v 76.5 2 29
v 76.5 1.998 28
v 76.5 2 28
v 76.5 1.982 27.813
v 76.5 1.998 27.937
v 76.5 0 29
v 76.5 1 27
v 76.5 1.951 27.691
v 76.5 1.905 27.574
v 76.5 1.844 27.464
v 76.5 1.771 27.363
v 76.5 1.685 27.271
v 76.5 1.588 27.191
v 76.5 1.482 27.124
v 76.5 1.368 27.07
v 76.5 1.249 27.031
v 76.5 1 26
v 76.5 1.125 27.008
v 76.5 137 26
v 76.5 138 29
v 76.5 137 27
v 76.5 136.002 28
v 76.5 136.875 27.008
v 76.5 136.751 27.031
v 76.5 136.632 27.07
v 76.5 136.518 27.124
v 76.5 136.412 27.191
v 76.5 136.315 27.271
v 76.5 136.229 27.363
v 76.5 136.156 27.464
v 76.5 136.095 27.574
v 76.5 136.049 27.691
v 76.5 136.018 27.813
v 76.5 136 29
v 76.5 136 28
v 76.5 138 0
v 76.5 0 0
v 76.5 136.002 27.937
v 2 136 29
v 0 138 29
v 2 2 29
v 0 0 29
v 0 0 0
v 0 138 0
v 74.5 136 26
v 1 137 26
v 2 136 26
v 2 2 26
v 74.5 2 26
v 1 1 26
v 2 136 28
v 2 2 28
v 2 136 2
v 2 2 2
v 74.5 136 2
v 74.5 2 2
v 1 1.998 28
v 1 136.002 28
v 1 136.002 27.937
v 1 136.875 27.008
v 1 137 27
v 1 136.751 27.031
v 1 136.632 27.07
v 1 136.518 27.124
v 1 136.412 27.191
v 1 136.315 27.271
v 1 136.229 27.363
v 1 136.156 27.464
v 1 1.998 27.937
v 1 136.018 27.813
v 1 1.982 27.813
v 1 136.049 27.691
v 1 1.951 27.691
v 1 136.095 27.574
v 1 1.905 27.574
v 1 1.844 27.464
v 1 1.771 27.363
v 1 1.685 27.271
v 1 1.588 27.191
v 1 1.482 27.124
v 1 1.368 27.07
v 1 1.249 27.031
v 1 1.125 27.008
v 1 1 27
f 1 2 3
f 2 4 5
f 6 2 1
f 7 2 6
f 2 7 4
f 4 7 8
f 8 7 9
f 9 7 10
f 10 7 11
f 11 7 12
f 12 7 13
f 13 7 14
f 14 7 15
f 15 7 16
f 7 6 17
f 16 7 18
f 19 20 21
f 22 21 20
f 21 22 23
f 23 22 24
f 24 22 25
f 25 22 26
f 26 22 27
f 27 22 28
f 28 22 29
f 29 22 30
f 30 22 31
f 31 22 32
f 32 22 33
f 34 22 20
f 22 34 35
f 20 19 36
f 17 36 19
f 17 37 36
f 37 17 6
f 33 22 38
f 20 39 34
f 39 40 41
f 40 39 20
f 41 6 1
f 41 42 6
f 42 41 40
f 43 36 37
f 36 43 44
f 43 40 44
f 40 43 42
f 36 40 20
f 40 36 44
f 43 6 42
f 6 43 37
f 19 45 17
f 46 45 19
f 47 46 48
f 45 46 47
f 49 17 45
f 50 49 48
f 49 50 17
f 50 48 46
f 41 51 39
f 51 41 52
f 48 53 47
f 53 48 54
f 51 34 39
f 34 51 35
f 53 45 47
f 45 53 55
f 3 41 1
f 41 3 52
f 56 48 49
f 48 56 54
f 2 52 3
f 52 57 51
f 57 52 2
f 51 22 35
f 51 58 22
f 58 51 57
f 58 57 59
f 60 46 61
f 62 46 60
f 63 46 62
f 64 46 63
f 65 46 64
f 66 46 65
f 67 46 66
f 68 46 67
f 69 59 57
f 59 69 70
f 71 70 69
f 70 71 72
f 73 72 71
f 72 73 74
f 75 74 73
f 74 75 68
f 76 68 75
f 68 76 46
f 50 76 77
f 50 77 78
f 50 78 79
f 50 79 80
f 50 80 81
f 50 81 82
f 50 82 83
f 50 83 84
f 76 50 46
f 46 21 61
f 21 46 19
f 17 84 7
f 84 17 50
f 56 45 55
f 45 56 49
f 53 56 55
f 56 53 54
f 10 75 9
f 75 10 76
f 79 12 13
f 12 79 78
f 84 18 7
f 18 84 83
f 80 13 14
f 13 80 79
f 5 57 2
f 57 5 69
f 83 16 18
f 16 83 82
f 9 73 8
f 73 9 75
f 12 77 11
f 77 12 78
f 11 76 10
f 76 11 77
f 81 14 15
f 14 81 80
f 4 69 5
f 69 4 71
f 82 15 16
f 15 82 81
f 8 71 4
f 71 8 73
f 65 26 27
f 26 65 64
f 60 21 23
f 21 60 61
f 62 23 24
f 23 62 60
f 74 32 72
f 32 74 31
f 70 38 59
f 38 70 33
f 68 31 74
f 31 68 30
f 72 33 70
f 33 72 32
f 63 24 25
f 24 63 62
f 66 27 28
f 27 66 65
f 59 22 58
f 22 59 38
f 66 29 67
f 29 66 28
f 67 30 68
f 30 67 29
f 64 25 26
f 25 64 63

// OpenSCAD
DIM = [
	76.5, // Spielerinnenablage richtung
	138, // Links-Rechts
	29
];

WALL  = 2;
FLOOR = 2;
LID   = 3;



union(){
	difference(){
		cube(DIM);
	
		// Lid Opening
		translate([ WALL , WALL , DIM.z-LID ]) cube([ DIM.x-WALL+0.1 , DIM.y-2*WALL , LID+0.1 ]);
		translate([ WALL-1 , WALL-1 , DIM.z-LID ]) cube([ DIM.x-1+0.1 , DIM.y-2 , 2 ]);
		
		// Storage
		translate([ WALL , WALL , FLOOR ]) cube([ DIM.x-2*WALL , DIM.y-2*WALL , DIM.z ]);
	
	}
	
	// Lid Opening Thingies
	translate([ 0 , 1 , DIM.z-1 ]) rotate([0,90,0]) cylinder(DIM.x,r=1,$fn=50);
	translate([ 0 , DIM.y-1 , DIM.z-1 ]) rotate([0,90,0]) cylinder(DIM.x,r=1,$fn=50);
	
	//translate([ 1 , 1 , OUT_Z-1 ]) rotate([-90,0,0]) cylinder(OUT_Y-1,r=1,$fn=50);
}
